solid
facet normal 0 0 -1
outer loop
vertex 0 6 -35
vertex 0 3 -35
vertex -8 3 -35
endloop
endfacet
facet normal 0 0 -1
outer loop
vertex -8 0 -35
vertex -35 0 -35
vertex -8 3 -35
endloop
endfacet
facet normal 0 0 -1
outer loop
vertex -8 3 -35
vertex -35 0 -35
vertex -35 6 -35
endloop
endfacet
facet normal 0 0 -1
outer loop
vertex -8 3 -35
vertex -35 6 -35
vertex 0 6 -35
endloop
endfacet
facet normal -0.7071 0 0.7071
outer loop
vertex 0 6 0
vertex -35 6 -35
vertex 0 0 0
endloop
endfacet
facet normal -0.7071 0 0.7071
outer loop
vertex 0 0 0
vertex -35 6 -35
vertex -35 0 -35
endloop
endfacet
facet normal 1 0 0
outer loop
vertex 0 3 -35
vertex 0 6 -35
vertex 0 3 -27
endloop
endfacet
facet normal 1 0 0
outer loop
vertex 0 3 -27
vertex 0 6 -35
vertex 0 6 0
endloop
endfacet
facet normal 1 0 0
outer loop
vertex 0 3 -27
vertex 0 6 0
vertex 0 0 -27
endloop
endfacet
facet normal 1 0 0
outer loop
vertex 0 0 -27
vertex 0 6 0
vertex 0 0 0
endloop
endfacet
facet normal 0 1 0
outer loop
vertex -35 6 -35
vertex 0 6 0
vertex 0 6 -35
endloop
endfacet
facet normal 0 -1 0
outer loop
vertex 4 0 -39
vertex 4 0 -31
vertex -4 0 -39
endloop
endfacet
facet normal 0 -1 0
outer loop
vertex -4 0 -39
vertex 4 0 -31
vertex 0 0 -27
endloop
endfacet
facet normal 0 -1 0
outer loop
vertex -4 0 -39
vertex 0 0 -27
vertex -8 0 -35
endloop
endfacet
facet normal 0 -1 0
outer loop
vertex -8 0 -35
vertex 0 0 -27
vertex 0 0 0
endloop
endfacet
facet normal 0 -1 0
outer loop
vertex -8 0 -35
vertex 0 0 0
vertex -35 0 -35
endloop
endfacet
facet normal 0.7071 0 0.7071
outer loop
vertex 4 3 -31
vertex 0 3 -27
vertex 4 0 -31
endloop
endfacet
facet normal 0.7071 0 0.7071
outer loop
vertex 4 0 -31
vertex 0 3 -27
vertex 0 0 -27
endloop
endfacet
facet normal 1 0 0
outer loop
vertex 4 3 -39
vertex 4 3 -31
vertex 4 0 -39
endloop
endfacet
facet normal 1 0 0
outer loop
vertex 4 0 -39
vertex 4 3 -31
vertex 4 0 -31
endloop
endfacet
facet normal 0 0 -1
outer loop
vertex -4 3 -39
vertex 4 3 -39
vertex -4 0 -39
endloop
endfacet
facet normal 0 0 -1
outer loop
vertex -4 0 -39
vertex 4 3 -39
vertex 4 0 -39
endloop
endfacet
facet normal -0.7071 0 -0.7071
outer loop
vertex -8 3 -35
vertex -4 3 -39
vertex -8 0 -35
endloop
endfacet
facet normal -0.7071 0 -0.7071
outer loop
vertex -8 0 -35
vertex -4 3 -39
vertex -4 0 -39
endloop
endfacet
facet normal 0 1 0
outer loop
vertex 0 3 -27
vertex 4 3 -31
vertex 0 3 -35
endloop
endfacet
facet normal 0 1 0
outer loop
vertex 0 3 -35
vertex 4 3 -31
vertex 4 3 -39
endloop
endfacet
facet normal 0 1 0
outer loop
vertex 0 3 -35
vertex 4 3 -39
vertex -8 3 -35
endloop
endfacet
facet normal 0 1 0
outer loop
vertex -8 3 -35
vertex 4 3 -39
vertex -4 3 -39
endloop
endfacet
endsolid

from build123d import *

# Parameters (mm, degrees)
BOSS_EXTRUDE1_DEPTH = 6
BOSS_EXTRUDE2_DEPTH = 3


with BuildPart() as part:
    # Sketch1 → Boss-Extrude1 (new body)
    with BuildSketch(Plane(origin=(0, 0, 0), x_dir=(1, 0, 0), z_dir=(0, 1, 0))):
        Polygon((-35, 35), (0, 0), (0, 27), (0, 35), (-8, 35), align=None)
    extrude(amount=BOSS_EXTRUDE1_DEPTH)

    # Sketch1<3> → Boss-Extrude2 (add)
    with BuildSketch(Plane(origin=(0, 0, 0), x_dir=(1, 0, 0), z_dir=(0, 1, 0))):
        Polygon((0, 35), (0, 27), (4, 31), (4, 39), (-4, 39), (-8, 35), align=None)
    extrude(amount=BOSS_EXTRUDE2_DEPTH)


solid = part.part
